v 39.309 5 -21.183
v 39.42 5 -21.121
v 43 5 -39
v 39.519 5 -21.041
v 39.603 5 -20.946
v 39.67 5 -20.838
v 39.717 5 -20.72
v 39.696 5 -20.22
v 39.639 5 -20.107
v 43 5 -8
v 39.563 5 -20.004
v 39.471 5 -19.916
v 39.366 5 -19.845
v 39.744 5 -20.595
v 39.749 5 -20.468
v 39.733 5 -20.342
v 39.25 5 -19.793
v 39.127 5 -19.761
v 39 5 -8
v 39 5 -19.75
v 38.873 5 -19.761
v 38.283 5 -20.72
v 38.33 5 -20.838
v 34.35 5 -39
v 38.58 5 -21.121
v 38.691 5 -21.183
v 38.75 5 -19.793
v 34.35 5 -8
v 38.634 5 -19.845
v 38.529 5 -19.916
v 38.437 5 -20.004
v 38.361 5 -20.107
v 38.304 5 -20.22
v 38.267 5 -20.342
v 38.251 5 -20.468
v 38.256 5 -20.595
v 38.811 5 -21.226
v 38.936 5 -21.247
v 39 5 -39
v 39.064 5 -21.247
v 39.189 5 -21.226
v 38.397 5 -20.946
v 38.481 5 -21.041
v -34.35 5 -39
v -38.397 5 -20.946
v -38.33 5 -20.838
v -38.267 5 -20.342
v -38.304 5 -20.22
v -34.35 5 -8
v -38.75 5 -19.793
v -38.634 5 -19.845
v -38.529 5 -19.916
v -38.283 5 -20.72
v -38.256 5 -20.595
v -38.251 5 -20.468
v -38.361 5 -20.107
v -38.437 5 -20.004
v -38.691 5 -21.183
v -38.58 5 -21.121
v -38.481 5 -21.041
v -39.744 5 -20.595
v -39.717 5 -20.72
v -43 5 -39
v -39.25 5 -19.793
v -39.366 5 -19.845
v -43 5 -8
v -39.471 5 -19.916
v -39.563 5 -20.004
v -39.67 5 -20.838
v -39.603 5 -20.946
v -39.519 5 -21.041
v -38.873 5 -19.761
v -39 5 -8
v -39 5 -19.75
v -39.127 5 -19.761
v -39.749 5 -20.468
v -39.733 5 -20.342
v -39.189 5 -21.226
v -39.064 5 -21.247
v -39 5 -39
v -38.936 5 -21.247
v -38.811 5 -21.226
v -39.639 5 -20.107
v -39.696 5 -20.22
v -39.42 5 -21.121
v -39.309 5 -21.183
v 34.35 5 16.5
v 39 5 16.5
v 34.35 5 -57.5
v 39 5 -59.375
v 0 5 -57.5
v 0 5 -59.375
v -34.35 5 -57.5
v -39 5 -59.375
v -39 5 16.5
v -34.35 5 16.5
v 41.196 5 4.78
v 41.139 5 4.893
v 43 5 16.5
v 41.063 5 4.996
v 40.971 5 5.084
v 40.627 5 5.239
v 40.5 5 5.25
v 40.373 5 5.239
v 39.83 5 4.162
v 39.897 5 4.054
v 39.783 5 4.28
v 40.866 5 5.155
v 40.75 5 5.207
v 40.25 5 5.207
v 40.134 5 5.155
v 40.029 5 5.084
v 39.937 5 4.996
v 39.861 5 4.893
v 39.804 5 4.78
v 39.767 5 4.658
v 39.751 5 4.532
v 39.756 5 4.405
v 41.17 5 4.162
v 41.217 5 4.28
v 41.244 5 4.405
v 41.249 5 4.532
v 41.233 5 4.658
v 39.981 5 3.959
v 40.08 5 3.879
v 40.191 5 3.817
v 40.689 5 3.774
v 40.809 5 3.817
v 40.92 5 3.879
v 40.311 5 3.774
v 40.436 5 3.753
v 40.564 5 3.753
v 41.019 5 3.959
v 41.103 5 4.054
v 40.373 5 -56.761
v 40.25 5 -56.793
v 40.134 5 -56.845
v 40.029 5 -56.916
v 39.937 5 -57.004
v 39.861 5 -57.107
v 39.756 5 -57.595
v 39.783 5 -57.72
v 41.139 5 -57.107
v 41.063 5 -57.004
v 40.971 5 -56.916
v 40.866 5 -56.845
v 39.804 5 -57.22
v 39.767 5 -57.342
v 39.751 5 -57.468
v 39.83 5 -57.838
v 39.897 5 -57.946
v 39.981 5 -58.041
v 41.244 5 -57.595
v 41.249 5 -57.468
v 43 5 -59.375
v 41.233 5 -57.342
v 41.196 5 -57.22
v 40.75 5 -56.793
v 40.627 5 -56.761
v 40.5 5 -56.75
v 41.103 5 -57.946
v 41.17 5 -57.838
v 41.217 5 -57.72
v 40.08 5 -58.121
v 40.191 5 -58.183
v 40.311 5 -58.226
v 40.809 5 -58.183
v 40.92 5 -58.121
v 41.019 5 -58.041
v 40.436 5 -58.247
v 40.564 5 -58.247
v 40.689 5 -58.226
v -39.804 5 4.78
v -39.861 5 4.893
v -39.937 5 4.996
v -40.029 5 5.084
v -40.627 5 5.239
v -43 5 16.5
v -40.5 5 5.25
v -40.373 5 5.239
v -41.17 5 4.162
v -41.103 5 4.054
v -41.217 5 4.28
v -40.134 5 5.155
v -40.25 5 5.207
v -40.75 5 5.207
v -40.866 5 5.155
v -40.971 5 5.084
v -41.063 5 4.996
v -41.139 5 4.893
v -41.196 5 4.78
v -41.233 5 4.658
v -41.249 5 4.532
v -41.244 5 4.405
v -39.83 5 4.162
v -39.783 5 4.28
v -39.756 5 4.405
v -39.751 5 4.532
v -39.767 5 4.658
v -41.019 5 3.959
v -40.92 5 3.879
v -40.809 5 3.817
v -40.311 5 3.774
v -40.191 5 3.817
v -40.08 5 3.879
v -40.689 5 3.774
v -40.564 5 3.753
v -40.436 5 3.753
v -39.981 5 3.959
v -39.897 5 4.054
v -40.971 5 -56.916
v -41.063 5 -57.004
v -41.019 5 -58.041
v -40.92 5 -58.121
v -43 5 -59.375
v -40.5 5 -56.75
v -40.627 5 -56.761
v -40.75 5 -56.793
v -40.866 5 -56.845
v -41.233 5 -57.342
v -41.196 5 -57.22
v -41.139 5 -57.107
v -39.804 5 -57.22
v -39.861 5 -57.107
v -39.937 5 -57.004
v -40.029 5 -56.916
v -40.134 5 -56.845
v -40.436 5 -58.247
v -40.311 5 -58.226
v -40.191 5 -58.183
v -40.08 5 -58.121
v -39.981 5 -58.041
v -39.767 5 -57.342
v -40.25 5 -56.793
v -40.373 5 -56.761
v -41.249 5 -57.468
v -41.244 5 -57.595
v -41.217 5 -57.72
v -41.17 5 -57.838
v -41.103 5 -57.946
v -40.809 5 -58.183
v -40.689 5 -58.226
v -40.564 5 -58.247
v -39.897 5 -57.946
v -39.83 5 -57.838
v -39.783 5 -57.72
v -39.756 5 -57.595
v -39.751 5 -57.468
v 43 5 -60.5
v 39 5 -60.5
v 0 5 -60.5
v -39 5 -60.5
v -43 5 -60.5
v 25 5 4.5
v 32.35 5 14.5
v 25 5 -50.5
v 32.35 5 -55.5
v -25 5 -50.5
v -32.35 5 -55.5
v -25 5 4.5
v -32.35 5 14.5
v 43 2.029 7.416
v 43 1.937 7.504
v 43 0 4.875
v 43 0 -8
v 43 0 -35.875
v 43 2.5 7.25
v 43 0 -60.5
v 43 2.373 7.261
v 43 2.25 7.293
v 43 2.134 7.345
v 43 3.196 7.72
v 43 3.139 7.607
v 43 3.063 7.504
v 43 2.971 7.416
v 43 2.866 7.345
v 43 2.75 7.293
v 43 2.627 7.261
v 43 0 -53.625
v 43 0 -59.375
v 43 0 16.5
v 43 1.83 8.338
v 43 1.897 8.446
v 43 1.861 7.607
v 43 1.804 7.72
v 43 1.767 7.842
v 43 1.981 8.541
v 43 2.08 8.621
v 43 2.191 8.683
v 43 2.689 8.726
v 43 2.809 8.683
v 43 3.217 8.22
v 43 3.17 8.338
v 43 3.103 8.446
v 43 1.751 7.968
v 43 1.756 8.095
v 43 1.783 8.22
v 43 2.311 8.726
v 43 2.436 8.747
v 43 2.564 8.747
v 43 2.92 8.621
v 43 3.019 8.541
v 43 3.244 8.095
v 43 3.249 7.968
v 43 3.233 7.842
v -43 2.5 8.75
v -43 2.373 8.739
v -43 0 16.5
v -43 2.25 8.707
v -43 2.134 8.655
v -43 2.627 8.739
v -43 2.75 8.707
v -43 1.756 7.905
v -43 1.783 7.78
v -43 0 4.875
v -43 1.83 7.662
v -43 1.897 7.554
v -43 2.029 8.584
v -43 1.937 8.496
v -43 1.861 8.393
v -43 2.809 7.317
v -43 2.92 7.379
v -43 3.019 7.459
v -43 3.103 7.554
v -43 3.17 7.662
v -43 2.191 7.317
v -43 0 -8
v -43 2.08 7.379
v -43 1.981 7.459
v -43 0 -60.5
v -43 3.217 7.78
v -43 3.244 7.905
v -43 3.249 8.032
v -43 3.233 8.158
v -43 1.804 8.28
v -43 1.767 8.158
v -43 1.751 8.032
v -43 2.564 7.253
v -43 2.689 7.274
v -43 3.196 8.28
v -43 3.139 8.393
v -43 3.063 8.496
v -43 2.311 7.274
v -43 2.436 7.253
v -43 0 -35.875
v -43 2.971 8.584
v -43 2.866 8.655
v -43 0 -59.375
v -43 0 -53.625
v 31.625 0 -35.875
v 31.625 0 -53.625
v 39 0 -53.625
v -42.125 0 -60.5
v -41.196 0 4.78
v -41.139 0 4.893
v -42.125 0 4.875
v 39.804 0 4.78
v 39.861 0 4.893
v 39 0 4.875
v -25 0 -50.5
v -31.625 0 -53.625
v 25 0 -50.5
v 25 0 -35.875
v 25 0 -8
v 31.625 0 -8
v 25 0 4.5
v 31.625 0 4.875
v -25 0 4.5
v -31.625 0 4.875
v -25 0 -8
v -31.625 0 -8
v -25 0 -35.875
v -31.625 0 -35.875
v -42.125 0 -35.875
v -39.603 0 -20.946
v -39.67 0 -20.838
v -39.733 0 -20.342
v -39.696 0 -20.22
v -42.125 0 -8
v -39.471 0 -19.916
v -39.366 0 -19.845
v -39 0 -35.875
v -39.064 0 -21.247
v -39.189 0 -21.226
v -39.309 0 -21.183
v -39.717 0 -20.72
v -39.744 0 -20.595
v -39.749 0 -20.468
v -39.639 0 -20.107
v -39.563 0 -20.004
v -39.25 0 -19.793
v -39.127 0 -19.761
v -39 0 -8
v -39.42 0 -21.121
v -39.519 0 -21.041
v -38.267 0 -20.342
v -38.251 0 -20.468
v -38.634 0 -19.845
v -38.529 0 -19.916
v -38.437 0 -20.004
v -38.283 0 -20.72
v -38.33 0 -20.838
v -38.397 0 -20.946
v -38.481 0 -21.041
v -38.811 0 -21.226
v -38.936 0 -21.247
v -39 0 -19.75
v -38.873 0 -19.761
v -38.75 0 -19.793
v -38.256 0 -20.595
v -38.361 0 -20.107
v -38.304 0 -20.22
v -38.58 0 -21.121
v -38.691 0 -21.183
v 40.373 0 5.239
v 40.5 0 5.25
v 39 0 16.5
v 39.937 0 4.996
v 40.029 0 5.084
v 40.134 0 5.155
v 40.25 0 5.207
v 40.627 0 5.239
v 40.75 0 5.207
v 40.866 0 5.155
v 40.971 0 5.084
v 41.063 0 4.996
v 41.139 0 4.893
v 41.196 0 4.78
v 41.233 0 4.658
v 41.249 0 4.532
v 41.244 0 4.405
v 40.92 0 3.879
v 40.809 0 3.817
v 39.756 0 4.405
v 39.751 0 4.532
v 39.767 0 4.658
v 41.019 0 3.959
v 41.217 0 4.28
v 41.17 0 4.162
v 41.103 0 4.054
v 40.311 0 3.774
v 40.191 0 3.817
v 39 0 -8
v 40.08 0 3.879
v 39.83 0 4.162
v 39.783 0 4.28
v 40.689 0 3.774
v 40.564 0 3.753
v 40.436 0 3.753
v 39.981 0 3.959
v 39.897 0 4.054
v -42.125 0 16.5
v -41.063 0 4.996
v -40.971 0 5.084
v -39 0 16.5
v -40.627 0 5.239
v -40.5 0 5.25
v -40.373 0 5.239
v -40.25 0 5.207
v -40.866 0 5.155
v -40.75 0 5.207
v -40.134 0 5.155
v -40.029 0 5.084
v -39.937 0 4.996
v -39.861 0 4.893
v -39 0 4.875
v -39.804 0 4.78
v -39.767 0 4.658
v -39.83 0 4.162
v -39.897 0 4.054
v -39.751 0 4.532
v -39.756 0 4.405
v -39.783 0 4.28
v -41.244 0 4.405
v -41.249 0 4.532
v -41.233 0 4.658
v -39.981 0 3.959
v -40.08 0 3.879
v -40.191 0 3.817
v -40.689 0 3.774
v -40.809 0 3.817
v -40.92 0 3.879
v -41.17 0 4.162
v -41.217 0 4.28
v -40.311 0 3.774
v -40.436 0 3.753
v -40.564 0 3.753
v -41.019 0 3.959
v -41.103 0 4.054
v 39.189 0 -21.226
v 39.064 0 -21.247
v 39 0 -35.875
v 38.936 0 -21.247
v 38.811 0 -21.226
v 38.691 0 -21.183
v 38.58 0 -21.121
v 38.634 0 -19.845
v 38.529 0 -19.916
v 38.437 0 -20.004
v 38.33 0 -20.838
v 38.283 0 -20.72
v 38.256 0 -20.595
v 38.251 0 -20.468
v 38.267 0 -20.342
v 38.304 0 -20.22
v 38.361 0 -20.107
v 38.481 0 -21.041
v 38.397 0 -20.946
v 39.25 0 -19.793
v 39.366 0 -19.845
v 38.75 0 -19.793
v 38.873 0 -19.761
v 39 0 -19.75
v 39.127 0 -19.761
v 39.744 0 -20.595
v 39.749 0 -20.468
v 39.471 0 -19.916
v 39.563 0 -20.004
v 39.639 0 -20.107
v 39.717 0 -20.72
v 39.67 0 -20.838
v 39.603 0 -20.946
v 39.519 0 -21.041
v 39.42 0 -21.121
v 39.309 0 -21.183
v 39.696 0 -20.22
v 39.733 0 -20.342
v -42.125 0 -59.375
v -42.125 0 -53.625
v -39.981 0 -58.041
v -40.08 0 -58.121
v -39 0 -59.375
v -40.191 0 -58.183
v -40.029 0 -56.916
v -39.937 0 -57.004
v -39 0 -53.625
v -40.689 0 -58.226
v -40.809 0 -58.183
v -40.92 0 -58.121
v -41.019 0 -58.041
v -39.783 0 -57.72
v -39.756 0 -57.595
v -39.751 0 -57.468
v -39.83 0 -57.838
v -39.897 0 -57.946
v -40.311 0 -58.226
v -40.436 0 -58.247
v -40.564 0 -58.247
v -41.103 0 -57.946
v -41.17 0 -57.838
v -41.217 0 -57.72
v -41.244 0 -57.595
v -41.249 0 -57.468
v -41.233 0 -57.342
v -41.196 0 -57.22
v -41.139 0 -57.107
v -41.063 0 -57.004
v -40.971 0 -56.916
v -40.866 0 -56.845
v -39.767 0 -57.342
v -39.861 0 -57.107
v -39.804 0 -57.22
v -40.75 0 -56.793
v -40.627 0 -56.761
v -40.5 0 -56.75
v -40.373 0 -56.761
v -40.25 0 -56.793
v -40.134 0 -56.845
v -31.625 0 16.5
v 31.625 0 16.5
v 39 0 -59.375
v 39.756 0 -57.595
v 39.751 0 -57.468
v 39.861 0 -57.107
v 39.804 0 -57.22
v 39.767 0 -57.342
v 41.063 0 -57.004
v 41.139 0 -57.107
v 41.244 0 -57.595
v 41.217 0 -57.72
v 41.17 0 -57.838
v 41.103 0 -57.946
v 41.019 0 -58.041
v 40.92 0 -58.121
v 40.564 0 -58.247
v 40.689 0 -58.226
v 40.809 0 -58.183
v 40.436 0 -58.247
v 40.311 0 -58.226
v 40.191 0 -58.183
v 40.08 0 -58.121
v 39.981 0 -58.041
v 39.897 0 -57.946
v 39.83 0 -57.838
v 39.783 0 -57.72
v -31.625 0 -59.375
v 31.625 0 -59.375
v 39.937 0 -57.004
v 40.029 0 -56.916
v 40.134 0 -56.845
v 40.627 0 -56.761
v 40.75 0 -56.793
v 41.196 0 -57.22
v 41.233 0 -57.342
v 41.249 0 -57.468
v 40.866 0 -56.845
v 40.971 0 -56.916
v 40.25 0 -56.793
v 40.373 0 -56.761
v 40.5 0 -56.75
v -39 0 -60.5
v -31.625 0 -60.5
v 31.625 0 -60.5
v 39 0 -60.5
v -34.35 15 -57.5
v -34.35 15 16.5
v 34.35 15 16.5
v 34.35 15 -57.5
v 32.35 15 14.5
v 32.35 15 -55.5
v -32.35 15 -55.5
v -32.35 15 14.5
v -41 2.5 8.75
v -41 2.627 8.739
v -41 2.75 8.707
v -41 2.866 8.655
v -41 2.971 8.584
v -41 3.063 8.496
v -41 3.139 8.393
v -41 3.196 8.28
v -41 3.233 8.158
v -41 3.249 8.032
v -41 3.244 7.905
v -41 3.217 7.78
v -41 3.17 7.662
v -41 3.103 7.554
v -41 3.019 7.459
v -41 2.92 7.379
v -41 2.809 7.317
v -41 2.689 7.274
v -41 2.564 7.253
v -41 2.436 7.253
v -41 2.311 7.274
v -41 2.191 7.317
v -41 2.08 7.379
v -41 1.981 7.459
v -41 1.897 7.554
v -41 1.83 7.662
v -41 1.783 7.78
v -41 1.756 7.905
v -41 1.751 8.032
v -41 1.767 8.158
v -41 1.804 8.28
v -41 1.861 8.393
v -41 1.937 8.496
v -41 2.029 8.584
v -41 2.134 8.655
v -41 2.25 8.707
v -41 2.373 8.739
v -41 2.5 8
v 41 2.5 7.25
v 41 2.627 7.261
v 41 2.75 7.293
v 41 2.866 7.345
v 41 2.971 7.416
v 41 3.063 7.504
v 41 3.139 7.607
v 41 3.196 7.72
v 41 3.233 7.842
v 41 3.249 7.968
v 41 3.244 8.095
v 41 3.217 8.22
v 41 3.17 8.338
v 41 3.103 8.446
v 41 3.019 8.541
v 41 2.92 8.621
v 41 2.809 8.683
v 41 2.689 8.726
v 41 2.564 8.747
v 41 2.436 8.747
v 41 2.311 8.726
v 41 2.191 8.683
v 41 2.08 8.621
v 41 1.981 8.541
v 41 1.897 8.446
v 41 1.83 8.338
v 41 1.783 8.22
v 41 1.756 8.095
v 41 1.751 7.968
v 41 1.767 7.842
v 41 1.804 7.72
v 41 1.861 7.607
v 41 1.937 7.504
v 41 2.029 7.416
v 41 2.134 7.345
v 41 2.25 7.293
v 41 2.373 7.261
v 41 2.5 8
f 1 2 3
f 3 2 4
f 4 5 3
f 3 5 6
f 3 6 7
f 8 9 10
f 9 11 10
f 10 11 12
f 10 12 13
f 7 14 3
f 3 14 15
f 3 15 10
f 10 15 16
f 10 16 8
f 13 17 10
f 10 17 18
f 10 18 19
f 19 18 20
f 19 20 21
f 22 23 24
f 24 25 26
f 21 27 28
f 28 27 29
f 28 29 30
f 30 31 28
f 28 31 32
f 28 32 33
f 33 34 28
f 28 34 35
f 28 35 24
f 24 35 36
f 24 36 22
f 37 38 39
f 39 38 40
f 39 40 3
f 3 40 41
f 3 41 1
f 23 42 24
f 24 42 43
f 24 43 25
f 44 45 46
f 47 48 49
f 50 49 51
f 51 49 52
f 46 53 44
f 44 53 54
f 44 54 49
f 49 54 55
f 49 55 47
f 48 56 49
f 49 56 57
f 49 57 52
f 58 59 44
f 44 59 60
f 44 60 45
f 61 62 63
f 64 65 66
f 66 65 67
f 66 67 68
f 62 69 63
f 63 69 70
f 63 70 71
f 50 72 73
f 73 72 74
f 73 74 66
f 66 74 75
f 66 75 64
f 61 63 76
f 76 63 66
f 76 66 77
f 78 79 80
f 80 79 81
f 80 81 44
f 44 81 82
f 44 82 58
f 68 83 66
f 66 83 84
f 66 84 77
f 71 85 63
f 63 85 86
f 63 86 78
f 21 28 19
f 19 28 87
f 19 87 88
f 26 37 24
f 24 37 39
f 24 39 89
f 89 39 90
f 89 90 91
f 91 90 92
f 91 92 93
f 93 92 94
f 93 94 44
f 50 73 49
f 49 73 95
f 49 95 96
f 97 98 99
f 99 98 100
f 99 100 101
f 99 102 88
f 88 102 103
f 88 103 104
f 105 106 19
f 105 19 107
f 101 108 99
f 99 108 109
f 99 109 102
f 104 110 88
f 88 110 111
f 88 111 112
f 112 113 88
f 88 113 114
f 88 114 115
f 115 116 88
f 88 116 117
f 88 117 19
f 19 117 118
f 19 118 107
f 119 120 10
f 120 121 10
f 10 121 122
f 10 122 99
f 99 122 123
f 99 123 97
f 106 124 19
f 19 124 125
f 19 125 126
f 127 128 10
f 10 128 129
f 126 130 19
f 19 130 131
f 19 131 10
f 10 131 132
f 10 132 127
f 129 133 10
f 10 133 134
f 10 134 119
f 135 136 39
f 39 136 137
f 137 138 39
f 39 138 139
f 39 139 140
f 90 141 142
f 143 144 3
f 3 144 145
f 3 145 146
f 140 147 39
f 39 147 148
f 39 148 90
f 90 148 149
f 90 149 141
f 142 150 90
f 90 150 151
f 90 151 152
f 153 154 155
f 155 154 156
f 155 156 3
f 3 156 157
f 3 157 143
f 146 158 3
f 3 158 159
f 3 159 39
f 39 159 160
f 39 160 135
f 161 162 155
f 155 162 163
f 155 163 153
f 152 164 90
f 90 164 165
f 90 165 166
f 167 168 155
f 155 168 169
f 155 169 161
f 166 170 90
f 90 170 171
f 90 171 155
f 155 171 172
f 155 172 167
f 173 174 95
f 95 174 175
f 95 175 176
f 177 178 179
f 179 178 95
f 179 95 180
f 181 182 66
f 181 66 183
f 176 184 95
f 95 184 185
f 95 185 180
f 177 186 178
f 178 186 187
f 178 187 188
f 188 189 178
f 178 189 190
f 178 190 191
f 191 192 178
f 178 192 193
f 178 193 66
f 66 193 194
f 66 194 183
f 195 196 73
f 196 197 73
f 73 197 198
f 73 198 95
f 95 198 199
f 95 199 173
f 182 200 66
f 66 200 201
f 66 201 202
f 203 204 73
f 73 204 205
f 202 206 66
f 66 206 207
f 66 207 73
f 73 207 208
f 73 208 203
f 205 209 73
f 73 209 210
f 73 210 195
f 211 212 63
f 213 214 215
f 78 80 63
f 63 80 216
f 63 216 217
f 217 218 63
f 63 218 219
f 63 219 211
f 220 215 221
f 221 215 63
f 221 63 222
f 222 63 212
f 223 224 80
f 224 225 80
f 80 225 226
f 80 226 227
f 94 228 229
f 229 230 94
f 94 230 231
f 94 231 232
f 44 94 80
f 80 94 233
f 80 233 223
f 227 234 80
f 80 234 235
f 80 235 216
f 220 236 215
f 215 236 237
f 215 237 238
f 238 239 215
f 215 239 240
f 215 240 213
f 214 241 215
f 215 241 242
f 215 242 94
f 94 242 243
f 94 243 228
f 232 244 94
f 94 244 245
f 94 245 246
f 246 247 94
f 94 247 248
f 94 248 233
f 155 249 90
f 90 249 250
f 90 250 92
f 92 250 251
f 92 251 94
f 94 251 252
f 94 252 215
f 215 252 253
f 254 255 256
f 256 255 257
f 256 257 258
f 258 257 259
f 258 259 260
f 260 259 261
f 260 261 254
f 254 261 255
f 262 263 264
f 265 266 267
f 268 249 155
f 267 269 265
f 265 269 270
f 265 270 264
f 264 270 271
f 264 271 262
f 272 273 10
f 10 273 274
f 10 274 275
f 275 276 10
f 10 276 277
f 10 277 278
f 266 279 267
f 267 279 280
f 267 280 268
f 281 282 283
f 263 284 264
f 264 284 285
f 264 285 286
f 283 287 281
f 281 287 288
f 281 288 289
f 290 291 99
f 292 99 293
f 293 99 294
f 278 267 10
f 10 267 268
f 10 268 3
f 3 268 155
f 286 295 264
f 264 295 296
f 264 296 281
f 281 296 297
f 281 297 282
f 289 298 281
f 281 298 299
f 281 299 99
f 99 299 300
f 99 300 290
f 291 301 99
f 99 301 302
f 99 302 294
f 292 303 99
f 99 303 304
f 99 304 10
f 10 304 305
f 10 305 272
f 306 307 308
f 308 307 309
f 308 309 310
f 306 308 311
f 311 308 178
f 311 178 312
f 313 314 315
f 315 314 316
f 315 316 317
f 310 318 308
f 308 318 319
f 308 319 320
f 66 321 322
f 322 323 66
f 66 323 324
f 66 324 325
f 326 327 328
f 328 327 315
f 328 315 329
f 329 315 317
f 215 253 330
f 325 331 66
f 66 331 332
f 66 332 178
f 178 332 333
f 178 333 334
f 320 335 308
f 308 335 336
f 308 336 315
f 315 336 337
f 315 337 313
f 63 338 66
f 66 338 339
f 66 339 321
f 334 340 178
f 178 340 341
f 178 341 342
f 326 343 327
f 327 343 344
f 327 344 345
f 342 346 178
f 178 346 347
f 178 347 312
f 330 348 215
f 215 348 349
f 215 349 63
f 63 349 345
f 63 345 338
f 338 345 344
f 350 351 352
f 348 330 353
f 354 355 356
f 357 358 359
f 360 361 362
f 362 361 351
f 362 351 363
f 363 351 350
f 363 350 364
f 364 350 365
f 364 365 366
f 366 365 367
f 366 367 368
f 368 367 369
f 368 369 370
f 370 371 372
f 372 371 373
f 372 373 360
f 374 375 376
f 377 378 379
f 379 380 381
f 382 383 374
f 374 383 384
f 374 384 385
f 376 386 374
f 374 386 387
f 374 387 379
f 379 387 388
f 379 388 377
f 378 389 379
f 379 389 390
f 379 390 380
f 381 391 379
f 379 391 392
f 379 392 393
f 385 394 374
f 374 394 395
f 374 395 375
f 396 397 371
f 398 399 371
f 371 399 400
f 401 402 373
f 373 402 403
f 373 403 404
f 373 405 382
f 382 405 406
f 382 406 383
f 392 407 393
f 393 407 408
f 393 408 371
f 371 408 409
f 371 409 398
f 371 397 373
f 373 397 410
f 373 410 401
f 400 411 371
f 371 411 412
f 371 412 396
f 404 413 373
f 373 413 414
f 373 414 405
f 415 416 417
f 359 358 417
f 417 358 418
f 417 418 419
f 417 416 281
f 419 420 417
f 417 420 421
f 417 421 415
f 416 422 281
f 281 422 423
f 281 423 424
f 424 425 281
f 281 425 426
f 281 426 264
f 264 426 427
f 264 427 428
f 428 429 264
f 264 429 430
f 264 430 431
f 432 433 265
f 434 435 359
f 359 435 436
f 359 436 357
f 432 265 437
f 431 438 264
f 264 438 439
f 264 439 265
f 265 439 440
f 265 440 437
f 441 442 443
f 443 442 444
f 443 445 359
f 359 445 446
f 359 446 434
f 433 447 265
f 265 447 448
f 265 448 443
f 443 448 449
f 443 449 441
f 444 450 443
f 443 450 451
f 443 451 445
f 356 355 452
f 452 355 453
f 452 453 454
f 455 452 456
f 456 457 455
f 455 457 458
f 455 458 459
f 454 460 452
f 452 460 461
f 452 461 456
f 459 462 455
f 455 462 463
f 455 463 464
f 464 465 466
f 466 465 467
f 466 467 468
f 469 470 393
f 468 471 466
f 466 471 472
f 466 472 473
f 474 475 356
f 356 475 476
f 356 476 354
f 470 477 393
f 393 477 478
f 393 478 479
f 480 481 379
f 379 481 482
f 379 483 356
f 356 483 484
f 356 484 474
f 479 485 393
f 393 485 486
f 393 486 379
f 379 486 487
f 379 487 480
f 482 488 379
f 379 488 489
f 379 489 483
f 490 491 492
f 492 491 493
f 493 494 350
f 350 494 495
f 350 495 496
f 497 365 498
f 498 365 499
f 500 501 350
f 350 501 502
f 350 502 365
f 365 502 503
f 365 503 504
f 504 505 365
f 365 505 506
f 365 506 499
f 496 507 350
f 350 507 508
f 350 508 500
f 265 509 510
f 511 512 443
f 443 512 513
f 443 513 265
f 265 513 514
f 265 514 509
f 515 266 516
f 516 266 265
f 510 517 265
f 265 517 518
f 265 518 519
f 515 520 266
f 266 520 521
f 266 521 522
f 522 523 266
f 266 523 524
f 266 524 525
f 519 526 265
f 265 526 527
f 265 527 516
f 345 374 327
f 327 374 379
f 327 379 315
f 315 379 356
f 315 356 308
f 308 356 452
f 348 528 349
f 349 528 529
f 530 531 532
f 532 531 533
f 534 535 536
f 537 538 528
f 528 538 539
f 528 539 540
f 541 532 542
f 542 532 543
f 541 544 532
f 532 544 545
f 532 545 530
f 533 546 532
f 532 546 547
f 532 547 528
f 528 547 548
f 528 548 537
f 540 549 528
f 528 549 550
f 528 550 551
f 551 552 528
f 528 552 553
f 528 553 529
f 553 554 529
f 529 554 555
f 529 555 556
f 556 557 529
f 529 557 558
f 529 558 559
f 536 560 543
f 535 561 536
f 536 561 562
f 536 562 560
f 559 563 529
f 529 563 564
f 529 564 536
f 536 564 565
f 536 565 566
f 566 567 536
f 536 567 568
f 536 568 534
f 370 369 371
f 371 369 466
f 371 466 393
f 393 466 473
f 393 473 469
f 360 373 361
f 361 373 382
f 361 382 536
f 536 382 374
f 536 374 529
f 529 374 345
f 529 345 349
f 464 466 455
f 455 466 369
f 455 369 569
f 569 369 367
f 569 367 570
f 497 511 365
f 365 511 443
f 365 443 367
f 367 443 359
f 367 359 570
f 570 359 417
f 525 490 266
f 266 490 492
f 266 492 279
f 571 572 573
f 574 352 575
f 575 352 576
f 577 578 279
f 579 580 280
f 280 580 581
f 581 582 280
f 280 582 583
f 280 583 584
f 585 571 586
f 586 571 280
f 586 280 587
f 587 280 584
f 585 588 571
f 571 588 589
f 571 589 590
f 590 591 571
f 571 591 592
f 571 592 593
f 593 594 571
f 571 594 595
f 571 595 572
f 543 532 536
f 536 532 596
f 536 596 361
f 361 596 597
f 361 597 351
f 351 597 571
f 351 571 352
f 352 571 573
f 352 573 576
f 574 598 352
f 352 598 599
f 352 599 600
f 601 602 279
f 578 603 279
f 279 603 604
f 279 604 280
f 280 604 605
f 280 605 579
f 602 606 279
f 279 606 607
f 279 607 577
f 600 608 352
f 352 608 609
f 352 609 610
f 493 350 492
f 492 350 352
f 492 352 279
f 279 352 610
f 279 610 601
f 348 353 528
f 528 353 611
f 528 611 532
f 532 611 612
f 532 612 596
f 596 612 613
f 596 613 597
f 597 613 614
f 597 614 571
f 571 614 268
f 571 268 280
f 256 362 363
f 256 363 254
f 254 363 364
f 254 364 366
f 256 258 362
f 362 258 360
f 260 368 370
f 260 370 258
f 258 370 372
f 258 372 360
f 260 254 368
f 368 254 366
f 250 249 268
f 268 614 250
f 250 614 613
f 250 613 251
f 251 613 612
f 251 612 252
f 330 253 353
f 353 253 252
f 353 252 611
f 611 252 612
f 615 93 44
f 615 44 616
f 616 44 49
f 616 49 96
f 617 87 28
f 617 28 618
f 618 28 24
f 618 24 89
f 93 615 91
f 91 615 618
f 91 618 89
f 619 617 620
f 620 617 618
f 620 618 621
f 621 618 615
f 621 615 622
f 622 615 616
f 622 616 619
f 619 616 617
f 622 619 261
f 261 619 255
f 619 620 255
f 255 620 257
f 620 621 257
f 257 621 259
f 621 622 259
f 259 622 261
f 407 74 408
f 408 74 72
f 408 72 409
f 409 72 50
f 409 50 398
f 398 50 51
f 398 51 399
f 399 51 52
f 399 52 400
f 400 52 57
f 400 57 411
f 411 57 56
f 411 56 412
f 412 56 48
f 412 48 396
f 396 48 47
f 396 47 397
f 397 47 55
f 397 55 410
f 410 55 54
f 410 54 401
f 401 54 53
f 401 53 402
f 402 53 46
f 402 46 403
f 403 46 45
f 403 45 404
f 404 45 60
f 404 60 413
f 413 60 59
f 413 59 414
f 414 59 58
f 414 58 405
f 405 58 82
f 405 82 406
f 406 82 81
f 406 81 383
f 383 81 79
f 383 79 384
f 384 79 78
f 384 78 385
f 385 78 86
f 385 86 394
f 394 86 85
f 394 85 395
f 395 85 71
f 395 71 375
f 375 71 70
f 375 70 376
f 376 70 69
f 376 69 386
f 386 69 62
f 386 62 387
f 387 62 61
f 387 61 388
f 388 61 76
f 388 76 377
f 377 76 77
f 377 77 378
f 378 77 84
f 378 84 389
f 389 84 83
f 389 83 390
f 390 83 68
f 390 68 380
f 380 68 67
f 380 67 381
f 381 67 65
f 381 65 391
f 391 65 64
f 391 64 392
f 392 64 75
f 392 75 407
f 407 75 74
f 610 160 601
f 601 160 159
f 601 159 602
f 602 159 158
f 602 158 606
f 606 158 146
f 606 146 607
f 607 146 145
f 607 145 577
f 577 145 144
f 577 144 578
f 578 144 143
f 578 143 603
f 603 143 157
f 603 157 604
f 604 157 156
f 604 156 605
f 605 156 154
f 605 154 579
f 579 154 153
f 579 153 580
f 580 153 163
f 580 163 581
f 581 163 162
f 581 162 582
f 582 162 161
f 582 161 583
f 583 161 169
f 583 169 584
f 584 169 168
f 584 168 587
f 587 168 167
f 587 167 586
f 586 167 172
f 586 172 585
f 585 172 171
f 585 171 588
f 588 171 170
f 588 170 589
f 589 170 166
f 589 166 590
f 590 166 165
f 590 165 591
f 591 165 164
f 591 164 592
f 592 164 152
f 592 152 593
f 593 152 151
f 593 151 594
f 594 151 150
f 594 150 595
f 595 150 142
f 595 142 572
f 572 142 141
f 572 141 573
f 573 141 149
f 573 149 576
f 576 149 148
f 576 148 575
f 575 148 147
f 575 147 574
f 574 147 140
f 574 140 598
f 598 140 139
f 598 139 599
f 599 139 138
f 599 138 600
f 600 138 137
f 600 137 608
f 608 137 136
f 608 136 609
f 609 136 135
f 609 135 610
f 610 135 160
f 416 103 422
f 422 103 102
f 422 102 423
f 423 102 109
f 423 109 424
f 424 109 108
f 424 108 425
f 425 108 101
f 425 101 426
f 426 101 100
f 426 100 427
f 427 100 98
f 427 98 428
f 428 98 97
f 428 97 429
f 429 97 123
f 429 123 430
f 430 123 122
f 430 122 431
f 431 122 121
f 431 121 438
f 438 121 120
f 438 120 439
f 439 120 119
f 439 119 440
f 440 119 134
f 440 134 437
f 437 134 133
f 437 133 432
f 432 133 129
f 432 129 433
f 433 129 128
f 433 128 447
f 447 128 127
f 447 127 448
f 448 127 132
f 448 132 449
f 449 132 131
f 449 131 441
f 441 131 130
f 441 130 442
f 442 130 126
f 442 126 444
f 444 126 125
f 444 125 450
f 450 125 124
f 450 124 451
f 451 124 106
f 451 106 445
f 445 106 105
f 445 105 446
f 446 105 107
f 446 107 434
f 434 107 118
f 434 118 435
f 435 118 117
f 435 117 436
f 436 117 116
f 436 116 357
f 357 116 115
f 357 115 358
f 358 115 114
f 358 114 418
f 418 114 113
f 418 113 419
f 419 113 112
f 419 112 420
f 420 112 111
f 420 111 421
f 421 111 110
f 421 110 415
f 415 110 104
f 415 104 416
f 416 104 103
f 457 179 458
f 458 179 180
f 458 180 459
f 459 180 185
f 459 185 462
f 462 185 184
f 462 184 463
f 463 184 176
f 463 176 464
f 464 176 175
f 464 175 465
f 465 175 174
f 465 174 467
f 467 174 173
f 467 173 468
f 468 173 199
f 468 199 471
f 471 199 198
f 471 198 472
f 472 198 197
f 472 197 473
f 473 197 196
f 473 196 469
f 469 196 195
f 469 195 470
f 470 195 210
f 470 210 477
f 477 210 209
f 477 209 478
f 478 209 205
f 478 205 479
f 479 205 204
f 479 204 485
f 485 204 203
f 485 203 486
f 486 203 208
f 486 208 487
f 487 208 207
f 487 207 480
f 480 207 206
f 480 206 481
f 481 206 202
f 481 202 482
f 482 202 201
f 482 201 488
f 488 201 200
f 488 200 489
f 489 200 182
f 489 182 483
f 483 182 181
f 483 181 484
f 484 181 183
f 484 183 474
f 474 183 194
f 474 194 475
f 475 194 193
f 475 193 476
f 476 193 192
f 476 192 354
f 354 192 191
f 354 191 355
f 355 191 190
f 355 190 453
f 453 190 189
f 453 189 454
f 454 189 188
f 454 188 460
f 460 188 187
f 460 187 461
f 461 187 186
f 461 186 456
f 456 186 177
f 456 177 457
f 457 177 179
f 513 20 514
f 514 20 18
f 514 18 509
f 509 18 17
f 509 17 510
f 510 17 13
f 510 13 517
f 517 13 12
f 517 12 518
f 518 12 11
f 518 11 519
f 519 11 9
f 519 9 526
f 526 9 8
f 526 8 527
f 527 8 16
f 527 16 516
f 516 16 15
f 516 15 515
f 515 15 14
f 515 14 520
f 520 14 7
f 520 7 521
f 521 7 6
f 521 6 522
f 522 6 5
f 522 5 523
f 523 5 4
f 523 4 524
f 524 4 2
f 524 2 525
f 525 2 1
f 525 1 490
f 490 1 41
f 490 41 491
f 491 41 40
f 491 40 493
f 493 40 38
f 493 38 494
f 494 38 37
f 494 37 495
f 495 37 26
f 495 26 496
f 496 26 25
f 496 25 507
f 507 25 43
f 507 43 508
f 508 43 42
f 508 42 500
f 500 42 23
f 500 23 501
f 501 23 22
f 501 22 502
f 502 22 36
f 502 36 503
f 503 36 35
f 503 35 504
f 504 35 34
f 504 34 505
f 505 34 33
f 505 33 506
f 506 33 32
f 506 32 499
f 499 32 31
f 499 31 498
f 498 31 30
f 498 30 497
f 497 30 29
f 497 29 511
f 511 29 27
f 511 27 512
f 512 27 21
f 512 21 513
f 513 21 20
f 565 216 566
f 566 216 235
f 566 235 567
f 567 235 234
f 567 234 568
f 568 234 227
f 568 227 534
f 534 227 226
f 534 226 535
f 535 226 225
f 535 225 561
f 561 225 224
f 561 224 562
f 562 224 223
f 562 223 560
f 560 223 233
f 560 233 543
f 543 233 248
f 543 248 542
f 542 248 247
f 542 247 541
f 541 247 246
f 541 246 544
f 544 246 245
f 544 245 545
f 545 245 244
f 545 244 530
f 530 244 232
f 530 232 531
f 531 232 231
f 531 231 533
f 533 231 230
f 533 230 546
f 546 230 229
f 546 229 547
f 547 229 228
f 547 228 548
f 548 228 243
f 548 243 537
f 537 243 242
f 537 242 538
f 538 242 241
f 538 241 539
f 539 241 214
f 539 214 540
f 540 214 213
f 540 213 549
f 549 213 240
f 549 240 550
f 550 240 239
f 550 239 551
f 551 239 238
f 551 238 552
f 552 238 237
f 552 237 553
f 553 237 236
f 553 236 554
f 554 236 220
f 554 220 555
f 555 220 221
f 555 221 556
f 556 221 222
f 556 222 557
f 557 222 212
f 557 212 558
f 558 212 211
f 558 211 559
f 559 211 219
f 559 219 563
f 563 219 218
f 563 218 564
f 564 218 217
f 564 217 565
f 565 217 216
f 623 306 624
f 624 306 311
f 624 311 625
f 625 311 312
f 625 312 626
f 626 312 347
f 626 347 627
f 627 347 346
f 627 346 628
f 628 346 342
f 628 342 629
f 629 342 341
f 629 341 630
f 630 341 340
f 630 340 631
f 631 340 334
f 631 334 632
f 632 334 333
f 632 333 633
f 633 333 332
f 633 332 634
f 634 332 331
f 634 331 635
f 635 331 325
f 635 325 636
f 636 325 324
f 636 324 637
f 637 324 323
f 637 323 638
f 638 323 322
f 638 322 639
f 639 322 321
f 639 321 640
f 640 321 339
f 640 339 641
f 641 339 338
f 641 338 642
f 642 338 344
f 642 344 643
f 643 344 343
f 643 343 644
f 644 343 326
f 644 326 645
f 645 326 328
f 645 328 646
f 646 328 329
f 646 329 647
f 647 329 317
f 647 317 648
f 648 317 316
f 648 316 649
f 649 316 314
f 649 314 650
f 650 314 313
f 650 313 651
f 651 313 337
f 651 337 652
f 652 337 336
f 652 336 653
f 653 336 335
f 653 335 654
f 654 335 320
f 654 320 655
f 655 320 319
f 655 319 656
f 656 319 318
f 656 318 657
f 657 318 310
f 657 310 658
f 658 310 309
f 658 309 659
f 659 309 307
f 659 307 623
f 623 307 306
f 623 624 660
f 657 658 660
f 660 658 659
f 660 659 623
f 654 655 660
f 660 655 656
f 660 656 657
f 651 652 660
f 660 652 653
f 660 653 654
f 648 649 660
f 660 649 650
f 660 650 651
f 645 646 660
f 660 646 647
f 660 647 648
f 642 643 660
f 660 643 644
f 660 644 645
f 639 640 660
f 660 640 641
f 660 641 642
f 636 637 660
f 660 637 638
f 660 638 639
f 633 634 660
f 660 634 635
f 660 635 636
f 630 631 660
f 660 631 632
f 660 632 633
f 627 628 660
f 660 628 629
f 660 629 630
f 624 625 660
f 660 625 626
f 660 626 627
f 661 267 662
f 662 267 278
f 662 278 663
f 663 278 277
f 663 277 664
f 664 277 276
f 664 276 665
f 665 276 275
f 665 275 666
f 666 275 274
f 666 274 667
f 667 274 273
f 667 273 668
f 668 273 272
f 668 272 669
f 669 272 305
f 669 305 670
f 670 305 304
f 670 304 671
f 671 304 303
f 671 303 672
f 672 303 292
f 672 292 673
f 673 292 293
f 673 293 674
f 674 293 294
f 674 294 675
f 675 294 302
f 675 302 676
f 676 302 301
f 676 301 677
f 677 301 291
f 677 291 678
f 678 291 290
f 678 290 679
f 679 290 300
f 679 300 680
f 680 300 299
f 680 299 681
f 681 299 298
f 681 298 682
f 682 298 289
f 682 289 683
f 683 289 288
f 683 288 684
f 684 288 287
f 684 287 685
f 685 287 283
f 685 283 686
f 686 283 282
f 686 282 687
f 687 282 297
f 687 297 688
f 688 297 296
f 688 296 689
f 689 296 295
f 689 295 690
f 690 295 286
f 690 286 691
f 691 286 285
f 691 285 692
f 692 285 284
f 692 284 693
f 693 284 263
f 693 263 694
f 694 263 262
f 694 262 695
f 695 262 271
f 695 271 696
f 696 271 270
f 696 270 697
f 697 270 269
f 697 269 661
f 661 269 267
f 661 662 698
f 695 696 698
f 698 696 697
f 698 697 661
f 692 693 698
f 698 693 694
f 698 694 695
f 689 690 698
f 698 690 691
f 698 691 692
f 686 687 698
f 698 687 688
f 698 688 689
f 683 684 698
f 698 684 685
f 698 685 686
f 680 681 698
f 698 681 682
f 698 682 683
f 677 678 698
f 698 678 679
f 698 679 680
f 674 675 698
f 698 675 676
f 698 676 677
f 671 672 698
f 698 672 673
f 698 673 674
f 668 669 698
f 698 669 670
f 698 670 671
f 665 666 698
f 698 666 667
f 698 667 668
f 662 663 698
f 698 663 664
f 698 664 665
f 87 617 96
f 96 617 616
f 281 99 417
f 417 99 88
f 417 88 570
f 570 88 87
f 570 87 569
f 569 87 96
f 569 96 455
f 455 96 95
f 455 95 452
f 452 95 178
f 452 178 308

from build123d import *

# Parameters (mm, degrees)
SKETCH_1_W          = 86
SKETCH_1_H          = 174
SKETCH_1_W_2        = 50
SKETCH_1_H_2        = 25
SKETCH_1_H_3        = 55
SKETCH_1_W_3        = 76
SKETCH_1_H_4        = 43
EXTRUDE_1_DEPTH     = 5
SKETCH_4_W          = 68.7
SKETCH_4_H          = 115
SKETCH_4_W_2        = 64.7
SKETCH_4_H_2        = 37
SKETCH_4_H_3        = 70
EXTRUDE_2_DEPTH     = 10
SKETCH_5_R          = 0.75
CUT_EXTRUDE_1_DEPTH = 122.783619588
SKETCH_7_W          = 15
SKETCH_7_H          = 8
SKETCH_7_W_2        = 26
SKETCH_7_W_3        = 5
SKETCH_7_H_2        = 10
SKETCH_7_H_3        = 12.119700025
SKETCH_7_W_4        = 6
SKETCH_7_H_4        = 5
SKETCH_7_W_5        = 7
SKETCH_7_H_5        = 21
CUT_EXTRUDE_2_DEPTH = 2
SKETCH_8_R          = 0.75
CUT_EXTRUDE_3_DEPTH = 2
CUT_EXTRUDE_START   = -84
SKETCH_8_3_R        = 0.75
CUT_EXTRUDE_4_DEPTH = 2
SKETCH_9_R          = 0.75
SKETCH_9_W          = 50
SKETCH_9_H          = 25
SKETCH_9_W_2        = 76
SKETCH_9_H_2        = 43
CUT_EXTRUDE_5_DEPTH = 123.295748086


with BuildPart() as part:
    # 草图1 → 凸台-拉伸1 (new body)
    with BuildSketch(Plane(origin=(0, 0, 0), x_dir=(1, 0, 0), z_dir=(0, 1, 0))):
        with Locations((0, -26.5)):
            Rectangle(SKETCH_1_W, SKETCH_1_H)
        with Locations((0, -38)):
            Rectangle(SKETCH_1_W_2, SKETCH_1_H_2, mode=Mode.SUBTRACT)
        with Locations((0, 23)):
            Rectangle(SKETCH_1_W_2, SKETCH_1_H_3, mode=Mode.SUBTRACT)
        with Locations((0, -87)):
            Rectangle(SKETCH_1_W_3, SKETCH_1_H_4, mode=Mode.SUBTRACT)
    extrude(amount=EXTRUDE_1_DEPTH)

    # 草图4 → 凸台-拉伸2 (add)
    with BuildSketch(Plane(origin=(0, 5, 0), x_dir=(1, 0, 0), z_dir=(0, 1, 0))):
        Rectangle(SKETCH_4_W, SKETCH_4_H)
        with Locations((0, -37)):
            Rectangle(SKETCH_4_W_2, SKETCH_4_H_2, mode=Mode.SUBTRACT)
        with Locations((0, 20.5)):
            Rectangle(SKETCH_4_W_2, SKETCH_4_H_3, mode=Mode.SUBTRACT)
    extrude(amount=EXTRUDE_2_DEPTH)

    # 草图5 → 切除-拉伸1 (cut, through all)
    with BuildSketch(Plane(origin=(0, 5, 0), x_dir=(1, 0, 0), z_dir=(0, 1, 0))):
        with Locations(Location((-39, 20.5, 0), (0, 0, 270))):
            Circle(SKETCH_5_R)
        with Locations(Location((39, 20.5, 0), (0, 0, 270))):
            Circle(SKETCH_5_R)
        with Locations(Location((-39, -32.5, 0), (0, 0, 270))):
            Circle(SKETCH_5_R)
        with Locations(Location((39, -32.5, 0), (0, 0, 270))):
            Circle(SKETCH_5_R)
        with Locations(Location((-40.1427775, -60.35, 0), (0, 0, 270))):
            Circle(SKETCH_5_R)
        with Locations(Location((40.1427775, -60.35, 0), (0, 0, 270))):
            Circle(SKETCH_5_R)
        with Locations(Location((-40.1427775, -110.530299975, 0), (0, 0, 270))):
            Circle(SKETCH_5_R)
        with Locations(Location((40.1427775, -110.530299975, 0), (0, 0, 270))):
            Circle(SKETCH_5_R)
        with Locations(Location((-40.5, 57.5, 0), (0, 0, 270))):
            Circle(SKETCH_5_R)
        with Locations(Location((-40.5, -38, 0), (0, 0, 270))):
            Circle(SKETCH_5_R)
        with Locations(Location((-40.5, -85.5, 0), (0, 0, 270))):
            Circle(SKETCH_5_R)
        with Locations(Location((40.5, 57.5, 0), (0, 0, 270))):
            Circle(SKETCH_5_R)
        with Locations(Location((40.5, -38, 0), (0, 0, 270))):
            Circle(SKETCH_5_R)
        with Locations(Location((40.5, -85.5, 0), (0, 0, 270))):
            Circle(SKETCH_5_R)
        with Locations(Location((-40.5, -4.5, 0), (0, 0, 270))):
            Circle(SKETCH_5_R)
        with Locations(Location((40.5, -4.5, 0), (0, 0, 270))):
            Circle(SKETCH_5_R)
    extrude(amount=-CUT_EXTRUDE_1_DEPTH, mode=Mode.SUBTRACT)

    # 草图7 → 切除-拉伸2 (cut)
    with BuildSketch(Plane(origin=(0, 5, 0), x_dir=(1, 0, 0), z_dir=(0, 1, 0))):
        with Locations((-24.5, -61.5)):
            Rectangle(SKETCH_7_W, SKETCH_7_H)
        with Locations((0, -61.5)):
            Rectangle(SKETCH_7_W_2, SKETCH_7_H)
        with Locations((-40.5, -78.5)):
            Rectangle(SKETCH_7_W_3, SKETCH_7_H_2)
        with Locations((-40.5, -101.440149988)):
            Rectangle(SKETCH_7_W_3, SKETCH_7_H_3)
        with Locations((-32, -111)):
            Rectangle(SKETCH_7_W_4, SKETCH_7_H_4)
        with Locations((-3, -111)):
            Rectangle(SKETCH_7_W_4, SKETCH_7_H_4)
        with Locations((17.5, -111)):
            Rectangle(SKETCH_7_W_5, SKETCH_7_H_4)
        with Locations((30.5, -111)):
            Rectangle(SKETCH_7_W_5, SKETCH_7_H_4)
        with Locations((40.5, -92)):
            Rectangle(SKETCH_7_W_3, SKETCH_7_H_5)
    extrude(amount=-CUT_EXTRUDE_2_DEPTH, mode=Mode.SUBTRACT)

    # 草图8 → 切除-拉伸3 (cut)
    with BuildSketch(Plane.ZY.offset(43)):
        with Locations((8, 2.5)):
            Circle(SKETCH_8_R)
        with Locations((23, 2.5)):
            Circle(SKETCH_8_R)
        with Locations((52, 2.5)):
            Circle(SKETCH_8_R)
        with Locations((63, 2.5)):
            Circle(SKETCH_8_R)
    extrude(amount=-CUT_EXTRUDE_3_DEPTH, mode=Mode.SUBTRACT)

    # 草图8<3> → 切除-拉伸4 (cut)
    with BuildSketch(Plane.ZY.offset(43).offset(CUT_EXTRUDE_START)):
        with Locations((8, 2.5)):
            Circle(SKETCH_8_3_R)
        with Locations((23, 2.5)):
            Circle(SKETCH_8_3_R)
        with Locations((52, 2.5)):
            Circle(SKETCH_8_3_R)
        with Locations((63, 2.5)):
            Circle(SKETCH_8_3_R)
    extrude(amount=-CUT_EXTRUDE_4_DEPTH, mode=Mode.SUBTRACT)

    # 草图9 → 切除-拉伸5 (cut, through all)
    with BuildSketch(Plane(origin=(0, 0, 0), x_dir=(1, 0, 0), z_dir=(0, 1, 0))):
        Polygon((0, -16.5), (-43, -16.5), (-43, -113.5), (43, -113.5), (43, -16.5), align=None)
        with Locations((-40.5, -38)):
            Circle(SKETCH_9_R, mode=Mode.SUBTRACT)
        with Locations((-39, -32.5)):
            Circle(SKETCH_9_R, mode=Mode.SUBTRACT)
        with Locations((0, -38)):
            Rectangle(SKETCH_9_W, SKETCH_9_H, mode=Mode.SUBTRACT)
        with Locations((40.5, -38)):
            Circle(SKETCH_9_R, mode=Mode.SUBTRACT)
        with Locations((39, -32.5)):
            Circle(SKETCH_9_R, mode=Mode.SUBTRACT)
        with Locations((40.1427775, -60.35)):
            Circle(SKETCH_9_R, mode=Mode.SUBTRACT)
        with Locations((-40.1427775, -110.530299975)):
            Circle(SKETCH_9_R, mode=Mode.SUBTRACT)
        with Locations((-40.5, -85.5)):
            Circle(SKETCH_9_R, mode=Mode.SUBTRACT)
        with Locations((0, -87)):
            Rectangle(SKETCH_9_W_2, SKETCH_9_H_2, mode=Mode.SUBTRACT)
        with Locations((-40.1427775, -60.35)):
            Circle(SKETCH_9_R, mode=Mode.SUBTRACT)
        with Locations((40.1427775, -110.530299975)):
            Circle(SKETCH_9_R, mode=Mode.SUBTRACT)
        with Locations((40.5, -85.5)):
            Circle(SKETCH_9_R, mode=Mode.SUBTRACT)
    extrude(amount=CUT_EXTRUDE_5_DEPTH, mode=Mode.SUBTRACT)


solid = part.part
